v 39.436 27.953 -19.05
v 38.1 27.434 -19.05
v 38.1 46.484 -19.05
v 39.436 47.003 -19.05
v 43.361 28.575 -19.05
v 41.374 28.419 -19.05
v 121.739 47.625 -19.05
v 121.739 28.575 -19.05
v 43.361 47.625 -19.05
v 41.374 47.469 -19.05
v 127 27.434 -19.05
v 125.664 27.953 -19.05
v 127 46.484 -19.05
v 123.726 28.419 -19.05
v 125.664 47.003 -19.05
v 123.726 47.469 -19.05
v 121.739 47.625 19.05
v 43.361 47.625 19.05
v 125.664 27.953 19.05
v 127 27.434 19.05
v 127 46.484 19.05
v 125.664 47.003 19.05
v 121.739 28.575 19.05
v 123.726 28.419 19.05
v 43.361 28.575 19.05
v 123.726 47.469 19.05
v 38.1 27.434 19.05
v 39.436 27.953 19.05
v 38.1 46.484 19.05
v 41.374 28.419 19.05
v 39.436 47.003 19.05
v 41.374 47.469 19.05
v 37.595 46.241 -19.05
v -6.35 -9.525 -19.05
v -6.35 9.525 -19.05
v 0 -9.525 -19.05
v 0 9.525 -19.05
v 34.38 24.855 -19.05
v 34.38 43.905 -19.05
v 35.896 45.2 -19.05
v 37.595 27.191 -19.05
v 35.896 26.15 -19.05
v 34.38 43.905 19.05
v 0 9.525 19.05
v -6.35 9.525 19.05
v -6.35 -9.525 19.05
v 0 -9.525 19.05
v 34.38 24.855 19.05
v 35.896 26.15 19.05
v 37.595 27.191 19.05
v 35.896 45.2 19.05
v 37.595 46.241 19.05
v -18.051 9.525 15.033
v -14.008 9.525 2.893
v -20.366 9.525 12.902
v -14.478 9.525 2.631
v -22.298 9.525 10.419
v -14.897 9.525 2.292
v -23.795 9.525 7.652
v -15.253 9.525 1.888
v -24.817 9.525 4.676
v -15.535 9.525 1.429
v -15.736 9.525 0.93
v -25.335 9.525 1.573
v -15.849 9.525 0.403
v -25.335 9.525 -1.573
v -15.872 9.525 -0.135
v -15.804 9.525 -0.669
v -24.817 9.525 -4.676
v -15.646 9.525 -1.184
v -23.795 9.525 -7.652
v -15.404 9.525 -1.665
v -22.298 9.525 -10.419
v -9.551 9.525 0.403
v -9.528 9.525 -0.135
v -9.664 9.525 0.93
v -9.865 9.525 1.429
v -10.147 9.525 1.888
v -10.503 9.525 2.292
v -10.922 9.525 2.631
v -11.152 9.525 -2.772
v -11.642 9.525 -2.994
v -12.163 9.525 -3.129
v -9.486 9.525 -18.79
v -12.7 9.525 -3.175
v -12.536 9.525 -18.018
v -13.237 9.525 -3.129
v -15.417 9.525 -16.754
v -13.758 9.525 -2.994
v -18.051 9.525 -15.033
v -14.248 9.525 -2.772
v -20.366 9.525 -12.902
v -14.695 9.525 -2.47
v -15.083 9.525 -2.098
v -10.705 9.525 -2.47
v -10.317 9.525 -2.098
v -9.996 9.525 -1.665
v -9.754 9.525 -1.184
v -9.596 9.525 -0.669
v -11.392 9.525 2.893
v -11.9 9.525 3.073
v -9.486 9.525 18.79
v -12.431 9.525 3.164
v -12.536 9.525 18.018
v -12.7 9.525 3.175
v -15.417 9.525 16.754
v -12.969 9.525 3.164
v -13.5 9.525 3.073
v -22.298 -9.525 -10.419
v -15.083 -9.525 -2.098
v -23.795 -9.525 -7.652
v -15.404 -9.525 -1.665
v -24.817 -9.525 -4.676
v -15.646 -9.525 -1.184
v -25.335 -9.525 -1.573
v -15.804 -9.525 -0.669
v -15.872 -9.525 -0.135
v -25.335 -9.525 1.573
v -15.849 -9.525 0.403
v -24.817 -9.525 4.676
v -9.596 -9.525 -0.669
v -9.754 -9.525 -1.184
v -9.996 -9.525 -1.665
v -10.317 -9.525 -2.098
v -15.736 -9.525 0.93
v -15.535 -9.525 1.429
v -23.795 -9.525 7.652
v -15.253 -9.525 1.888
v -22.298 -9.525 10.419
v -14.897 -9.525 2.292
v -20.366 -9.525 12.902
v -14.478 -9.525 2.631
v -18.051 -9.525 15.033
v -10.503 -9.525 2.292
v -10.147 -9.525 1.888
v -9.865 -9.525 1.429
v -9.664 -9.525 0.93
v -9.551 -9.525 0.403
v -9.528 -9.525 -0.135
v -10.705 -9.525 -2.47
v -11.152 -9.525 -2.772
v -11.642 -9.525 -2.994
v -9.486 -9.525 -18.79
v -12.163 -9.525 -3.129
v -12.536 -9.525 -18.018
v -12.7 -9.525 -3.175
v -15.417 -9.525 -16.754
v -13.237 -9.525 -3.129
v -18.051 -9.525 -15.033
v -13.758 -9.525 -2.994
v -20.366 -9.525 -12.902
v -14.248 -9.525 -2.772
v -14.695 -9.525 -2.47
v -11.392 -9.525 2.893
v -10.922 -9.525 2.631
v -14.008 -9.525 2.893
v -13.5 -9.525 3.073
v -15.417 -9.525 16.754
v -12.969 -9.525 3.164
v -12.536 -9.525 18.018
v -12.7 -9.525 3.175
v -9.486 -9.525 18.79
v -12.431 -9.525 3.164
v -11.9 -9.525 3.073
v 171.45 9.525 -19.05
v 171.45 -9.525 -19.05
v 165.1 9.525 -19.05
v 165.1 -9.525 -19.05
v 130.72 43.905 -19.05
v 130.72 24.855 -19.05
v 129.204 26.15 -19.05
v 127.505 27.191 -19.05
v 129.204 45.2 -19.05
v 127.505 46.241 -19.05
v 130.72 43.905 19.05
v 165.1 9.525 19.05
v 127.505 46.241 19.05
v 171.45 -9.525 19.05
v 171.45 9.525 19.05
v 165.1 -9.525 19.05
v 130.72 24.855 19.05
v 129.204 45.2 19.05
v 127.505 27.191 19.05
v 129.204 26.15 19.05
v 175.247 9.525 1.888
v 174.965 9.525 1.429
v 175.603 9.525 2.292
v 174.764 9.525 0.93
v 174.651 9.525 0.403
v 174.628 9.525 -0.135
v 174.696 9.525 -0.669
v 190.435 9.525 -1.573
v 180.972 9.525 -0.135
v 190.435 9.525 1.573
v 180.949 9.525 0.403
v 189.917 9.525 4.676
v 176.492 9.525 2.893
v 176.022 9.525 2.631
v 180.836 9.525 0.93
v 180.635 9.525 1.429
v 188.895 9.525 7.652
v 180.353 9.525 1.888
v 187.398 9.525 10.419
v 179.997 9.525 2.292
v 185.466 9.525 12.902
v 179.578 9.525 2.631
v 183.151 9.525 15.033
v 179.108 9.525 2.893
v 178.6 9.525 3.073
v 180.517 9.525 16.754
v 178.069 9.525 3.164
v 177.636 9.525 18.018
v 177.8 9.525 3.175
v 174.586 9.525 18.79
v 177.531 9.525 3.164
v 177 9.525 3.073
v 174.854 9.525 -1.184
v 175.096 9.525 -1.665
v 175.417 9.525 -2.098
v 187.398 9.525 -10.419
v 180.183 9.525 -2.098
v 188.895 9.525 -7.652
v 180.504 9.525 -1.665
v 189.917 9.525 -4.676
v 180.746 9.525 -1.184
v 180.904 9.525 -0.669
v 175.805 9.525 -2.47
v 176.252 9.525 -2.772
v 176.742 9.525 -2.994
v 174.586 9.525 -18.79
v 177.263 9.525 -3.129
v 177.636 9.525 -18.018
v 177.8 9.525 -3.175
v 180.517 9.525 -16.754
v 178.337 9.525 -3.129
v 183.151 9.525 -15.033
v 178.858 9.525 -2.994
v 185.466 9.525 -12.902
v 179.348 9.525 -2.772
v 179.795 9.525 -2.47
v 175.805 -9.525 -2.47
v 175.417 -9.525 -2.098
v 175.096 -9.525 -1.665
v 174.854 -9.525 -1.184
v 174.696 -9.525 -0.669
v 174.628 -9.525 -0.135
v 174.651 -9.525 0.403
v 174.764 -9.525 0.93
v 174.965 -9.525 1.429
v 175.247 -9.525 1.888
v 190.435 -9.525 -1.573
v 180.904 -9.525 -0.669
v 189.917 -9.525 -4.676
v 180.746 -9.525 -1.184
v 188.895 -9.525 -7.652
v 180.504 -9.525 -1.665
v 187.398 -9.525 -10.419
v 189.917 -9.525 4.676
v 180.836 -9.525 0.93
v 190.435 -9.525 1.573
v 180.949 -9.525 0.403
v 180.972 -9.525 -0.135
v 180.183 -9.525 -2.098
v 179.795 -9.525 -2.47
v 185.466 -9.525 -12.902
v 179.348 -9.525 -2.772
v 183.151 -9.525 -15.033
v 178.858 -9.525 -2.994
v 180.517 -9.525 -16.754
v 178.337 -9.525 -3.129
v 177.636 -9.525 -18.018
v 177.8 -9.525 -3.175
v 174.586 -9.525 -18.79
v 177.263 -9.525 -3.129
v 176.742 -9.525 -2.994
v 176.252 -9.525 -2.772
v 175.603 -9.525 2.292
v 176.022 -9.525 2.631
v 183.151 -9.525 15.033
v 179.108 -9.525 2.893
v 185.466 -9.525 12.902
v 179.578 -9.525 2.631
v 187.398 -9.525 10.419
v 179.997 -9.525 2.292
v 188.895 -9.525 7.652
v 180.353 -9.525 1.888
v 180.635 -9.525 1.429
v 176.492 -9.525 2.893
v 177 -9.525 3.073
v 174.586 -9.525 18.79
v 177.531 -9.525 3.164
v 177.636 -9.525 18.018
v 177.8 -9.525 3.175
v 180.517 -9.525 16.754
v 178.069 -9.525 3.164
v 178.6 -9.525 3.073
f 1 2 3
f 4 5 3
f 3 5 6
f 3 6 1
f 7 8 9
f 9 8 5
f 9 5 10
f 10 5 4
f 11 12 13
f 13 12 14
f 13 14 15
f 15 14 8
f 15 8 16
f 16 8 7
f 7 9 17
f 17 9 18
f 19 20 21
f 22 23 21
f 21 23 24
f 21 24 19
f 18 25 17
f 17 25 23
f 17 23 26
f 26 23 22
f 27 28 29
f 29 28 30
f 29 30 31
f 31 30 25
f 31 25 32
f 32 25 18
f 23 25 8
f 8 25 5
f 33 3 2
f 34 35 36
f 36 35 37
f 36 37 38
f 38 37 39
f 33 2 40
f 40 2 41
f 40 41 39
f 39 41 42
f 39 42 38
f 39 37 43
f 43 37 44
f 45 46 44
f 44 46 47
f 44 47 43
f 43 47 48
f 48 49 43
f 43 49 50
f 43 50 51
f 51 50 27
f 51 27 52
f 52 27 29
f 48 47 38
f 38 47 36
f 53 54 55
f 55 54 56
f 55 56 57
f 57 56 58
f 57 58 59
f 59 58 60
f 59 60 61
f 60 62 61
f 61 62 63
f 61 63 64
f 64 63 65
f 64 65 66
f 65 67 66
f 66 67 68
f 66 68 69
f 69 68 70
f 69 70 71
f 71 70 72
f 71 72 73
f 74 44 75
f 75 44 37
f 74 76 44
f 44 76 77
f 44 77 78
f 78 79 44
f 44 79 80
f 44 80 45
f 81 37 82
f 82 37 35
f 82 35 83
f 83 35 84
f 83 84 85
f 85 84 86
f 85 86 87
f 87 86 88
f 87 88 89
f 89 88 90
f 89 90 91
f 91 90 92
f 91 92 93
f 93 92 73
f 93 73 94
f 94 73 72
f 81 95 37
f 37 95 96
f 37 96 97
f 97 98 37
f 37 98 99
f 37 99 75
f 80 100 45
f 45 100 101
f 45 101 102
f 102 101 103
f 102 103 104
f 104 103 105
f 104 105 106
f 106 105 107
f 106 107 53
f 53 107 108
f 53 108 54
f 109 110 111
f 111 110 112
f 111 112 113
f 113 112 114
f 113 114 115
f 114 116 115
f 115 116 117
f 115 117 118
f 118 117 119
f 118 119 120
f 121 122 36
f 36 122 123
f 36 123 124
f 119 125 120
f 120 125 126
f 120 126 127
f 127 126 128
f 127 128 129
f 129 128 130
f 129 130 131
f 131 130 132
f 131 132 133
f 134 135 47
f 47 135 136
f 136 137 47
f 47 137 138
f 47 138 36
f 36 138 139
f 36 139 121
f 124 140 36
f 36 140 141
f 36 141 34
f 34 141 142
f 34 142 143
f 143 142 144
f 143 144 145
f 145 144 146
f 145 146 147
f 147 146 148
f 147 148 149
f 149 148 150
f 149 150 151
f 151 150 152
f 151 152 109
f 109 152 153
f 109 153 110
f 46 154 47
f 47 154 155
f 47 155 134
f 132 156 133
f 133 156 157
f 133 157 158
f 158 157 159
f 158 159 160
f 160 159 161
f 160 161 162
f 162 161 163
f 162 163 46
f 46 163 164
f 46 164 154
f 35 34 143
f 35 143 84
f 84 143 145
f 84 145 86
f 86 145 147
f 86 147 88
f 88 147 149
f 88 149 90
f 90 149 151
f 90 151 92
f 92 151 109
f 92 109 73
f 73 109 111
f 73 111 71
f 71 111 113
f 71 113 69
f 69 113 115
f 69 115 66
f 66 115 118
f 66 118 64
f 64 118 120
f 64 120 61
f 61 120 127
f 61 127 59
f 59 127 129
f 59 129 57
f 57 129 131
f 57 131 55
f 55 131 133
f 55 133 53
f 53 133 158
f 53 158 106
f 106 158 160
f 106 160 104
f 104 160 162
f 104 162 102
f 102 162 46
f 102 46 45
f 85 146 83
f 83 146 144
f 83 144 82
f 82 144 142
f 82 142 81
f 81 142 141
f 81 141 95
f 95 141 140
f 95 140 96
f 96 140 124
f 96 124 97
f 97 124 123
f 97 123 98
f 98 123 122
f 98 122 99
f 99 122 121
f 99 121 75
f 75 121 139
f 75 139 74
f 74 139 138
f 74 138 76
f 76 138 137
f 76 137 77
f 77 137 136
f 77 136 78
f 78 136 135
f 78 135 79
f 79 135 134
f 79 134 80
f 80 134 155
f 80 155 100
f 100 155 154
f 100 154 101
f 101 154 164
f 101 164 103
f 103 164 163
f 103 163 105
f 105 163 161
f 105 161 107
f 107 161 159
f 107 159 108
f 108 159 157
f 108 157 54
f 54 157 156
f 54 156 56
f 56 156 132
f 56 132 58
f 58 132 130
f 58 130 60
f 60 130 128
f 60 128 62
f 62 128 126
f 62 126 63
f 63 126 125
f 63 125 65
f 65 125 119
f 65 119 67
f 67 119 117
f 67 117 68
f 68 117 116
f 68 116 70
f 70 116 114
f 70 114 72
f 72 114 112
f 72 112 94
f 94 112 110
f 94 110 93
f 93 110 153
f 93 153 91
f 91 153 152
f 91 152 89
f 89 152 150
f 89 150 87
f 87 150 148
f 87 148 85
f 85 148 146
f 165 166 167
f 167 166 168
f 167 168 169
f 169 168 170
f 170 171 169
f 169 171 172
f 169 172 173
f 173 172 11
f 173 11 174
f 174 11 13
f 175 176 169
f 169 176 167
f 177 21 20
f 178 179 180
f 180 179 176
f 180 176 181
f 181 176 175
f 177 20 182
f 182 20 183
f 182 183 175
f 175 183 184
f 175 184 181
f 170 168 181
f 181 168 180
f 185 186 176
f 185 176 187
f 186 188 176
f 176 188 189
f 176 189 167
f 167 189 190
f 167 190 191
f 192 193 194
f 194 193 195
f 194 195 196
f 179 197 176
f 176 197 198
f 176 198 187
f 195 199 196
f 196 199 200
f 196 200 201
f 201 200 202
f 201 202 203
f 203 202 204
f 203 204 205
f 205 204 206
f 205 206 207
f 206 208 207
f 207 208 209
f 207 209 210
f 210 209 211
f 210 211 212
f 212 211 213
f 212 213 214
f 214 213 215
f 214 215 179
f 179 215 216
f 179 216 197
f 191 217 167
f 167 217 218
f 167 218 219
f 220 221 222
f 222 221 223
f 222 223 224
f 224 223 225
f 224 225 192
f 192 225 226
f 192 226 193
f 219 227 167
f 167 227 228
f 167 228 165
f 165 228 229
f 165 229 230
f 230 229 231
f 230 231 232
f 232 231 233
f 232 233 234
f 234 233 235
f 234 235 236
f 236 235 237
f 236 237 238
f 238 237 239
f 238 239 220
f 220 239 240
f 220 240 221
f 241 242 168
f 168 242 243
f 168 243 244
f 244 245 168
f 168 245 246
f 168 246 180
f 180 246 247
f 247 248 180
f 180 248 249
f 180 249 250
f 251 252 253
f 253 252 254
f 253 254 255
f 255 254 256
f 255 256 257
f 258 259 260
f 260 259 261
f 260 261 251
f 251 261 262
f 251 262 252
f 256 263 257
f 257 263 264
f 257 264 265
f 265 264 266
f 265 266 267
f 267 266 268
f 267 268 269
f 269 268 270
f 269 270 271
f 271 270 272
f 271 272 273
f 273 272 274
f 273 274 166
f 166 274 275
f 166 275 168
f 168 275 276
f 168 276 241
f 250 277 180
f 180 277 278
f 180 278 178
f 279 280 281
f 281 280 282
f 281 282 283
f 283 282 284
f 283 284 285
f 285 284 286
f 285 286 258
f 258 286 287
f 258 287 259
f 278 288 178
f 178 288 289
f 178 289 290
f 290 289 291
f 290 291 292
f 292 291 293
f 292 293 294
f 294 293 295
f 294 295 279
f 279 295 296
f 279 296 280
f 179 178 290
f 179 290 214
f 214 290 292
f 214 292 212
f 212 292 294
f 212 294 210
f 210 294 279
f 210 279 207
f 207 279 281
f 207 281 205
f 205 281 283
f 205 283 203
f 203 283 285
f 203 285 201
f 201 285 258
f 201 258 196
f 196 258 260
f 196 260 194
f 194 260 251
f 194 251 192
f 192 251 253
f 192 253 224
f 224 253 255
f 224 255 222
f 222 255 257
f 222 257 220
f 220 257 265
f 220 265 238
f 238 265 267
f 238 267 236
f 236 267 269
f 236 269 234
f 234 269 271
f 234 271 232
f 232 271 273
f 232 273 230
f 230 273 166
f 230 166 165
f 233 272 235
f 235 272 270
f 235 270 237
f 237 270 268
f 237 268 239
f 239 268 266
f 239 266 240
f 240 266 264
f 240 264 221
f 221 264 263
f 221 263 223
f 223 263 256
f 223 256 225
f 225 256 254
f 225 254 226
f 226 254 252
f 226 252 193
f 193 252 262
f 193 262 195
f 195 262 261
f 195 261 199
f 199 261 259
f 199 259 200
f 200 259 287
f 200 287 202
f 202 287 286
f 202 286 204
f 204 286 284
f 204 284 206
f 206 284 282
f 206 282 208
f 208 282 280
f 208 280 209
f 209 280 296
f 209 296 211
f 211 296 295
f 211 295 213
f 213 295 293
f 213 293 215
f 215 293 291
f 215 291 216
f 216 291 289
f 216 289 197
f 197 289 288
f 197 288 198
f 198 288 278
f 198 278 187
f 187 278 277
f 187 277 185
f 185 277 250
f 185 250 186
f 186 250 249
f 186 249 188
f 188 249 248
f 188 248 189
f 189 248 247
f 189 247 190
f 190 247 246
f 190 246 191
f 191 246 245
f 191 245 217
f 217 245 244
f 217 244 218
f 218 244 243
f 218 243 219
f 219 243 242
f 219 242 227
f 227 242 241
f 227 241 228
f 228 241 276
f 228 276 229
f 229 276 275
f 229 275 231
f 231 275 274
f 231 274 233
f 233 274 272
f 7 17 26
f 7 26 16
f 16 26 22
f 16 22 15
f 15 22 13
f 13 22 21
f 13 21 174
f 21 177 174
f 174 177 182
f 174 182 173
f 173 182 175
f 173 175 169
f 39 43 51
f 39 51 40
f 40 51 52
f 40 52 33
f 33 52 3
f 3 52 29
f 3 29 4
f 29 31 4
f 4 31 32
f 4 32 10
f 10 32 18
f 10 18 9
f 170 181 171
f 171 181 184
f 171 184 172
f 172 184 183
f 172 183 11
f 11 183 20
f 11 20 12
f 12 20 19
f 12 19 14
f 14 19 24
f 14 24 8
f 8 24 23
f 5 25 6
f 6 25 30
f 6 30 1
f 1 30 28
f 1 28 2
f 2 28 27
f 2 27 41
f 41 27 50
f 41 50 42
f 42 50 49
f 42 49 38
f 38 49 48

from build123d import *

# Parameters (mm, degrees)
SWEEP1_START        = -19.05
SWEEP1_DEPTH        = 38.1
BOSS_EXTRUDE1_START = -9.525
SKETCH4_R           = 3.175
BOSS_EXTRUDE1_DEPTH = 19.05
FILLET1_R           = 12.7


# Read off the part's stored shape, not the designer's step: Sweep1
with BuildPart() as part:
    # Sweep1 outline → Sweep1 (new body)
    with BuildSketch(Plane.XY.offset(SWEEP1_START)):
        Polygon((82.55, 28.575), (82.55, 47.625), (38.1, 47.625), (0, 9.525), (0, -9.525), (38.1, 28.575), align=None)
    extrude(amount=SWEEP1_DEPTH)

    # Sketch4 → Boss-Extrude1 (add)
    with BuildSketch(Plane(origin=(0, 0, 0), x_dir=(1, 0, 0), z_dir=(0, 1, 0)).offset(BOSS_EXTRUDE1_START)):
        with BuildLine():
            Line((0, 19.05), (-6.35, 19.05))
            ThreePointArc((-6.35, 19.05), (-25.4, 0), (-6.35, -19.05))
            Line((-6.35, -19.05), (0, -19.05))
            Line((0, -19.05), (0, 19.05))
        make_face()
        with Locations(Location((-12.7, 0, 0), (0, 0, 90))):
            Circle(SKETCH4_R, mode=Mode.SUBTRACT)
    extrude(amount=BOSS_EXTRUDE1_DEPTH)

    # Mirror4: part across plane


with BuildPart() as part_1:
    add(part.part)
    add(part.part.mirror(Plane(origin=(82.55, 0, 0), x_dir=(0, 0, 1), z_dir=(1, 0, 0))))

    # Fillet1
    fillet1_edges = [part_1.edges().sort_by_distance(p)[0] for p in [
        (38.1, 47.625, 0),
        (38.1, 28.575, 0),
        (127, 47.625, 0),
        (127, 28.575, 0),
    ]]
    fillet(fillet1_edges, radius=FILLET1_R)


solid = part_1.part
